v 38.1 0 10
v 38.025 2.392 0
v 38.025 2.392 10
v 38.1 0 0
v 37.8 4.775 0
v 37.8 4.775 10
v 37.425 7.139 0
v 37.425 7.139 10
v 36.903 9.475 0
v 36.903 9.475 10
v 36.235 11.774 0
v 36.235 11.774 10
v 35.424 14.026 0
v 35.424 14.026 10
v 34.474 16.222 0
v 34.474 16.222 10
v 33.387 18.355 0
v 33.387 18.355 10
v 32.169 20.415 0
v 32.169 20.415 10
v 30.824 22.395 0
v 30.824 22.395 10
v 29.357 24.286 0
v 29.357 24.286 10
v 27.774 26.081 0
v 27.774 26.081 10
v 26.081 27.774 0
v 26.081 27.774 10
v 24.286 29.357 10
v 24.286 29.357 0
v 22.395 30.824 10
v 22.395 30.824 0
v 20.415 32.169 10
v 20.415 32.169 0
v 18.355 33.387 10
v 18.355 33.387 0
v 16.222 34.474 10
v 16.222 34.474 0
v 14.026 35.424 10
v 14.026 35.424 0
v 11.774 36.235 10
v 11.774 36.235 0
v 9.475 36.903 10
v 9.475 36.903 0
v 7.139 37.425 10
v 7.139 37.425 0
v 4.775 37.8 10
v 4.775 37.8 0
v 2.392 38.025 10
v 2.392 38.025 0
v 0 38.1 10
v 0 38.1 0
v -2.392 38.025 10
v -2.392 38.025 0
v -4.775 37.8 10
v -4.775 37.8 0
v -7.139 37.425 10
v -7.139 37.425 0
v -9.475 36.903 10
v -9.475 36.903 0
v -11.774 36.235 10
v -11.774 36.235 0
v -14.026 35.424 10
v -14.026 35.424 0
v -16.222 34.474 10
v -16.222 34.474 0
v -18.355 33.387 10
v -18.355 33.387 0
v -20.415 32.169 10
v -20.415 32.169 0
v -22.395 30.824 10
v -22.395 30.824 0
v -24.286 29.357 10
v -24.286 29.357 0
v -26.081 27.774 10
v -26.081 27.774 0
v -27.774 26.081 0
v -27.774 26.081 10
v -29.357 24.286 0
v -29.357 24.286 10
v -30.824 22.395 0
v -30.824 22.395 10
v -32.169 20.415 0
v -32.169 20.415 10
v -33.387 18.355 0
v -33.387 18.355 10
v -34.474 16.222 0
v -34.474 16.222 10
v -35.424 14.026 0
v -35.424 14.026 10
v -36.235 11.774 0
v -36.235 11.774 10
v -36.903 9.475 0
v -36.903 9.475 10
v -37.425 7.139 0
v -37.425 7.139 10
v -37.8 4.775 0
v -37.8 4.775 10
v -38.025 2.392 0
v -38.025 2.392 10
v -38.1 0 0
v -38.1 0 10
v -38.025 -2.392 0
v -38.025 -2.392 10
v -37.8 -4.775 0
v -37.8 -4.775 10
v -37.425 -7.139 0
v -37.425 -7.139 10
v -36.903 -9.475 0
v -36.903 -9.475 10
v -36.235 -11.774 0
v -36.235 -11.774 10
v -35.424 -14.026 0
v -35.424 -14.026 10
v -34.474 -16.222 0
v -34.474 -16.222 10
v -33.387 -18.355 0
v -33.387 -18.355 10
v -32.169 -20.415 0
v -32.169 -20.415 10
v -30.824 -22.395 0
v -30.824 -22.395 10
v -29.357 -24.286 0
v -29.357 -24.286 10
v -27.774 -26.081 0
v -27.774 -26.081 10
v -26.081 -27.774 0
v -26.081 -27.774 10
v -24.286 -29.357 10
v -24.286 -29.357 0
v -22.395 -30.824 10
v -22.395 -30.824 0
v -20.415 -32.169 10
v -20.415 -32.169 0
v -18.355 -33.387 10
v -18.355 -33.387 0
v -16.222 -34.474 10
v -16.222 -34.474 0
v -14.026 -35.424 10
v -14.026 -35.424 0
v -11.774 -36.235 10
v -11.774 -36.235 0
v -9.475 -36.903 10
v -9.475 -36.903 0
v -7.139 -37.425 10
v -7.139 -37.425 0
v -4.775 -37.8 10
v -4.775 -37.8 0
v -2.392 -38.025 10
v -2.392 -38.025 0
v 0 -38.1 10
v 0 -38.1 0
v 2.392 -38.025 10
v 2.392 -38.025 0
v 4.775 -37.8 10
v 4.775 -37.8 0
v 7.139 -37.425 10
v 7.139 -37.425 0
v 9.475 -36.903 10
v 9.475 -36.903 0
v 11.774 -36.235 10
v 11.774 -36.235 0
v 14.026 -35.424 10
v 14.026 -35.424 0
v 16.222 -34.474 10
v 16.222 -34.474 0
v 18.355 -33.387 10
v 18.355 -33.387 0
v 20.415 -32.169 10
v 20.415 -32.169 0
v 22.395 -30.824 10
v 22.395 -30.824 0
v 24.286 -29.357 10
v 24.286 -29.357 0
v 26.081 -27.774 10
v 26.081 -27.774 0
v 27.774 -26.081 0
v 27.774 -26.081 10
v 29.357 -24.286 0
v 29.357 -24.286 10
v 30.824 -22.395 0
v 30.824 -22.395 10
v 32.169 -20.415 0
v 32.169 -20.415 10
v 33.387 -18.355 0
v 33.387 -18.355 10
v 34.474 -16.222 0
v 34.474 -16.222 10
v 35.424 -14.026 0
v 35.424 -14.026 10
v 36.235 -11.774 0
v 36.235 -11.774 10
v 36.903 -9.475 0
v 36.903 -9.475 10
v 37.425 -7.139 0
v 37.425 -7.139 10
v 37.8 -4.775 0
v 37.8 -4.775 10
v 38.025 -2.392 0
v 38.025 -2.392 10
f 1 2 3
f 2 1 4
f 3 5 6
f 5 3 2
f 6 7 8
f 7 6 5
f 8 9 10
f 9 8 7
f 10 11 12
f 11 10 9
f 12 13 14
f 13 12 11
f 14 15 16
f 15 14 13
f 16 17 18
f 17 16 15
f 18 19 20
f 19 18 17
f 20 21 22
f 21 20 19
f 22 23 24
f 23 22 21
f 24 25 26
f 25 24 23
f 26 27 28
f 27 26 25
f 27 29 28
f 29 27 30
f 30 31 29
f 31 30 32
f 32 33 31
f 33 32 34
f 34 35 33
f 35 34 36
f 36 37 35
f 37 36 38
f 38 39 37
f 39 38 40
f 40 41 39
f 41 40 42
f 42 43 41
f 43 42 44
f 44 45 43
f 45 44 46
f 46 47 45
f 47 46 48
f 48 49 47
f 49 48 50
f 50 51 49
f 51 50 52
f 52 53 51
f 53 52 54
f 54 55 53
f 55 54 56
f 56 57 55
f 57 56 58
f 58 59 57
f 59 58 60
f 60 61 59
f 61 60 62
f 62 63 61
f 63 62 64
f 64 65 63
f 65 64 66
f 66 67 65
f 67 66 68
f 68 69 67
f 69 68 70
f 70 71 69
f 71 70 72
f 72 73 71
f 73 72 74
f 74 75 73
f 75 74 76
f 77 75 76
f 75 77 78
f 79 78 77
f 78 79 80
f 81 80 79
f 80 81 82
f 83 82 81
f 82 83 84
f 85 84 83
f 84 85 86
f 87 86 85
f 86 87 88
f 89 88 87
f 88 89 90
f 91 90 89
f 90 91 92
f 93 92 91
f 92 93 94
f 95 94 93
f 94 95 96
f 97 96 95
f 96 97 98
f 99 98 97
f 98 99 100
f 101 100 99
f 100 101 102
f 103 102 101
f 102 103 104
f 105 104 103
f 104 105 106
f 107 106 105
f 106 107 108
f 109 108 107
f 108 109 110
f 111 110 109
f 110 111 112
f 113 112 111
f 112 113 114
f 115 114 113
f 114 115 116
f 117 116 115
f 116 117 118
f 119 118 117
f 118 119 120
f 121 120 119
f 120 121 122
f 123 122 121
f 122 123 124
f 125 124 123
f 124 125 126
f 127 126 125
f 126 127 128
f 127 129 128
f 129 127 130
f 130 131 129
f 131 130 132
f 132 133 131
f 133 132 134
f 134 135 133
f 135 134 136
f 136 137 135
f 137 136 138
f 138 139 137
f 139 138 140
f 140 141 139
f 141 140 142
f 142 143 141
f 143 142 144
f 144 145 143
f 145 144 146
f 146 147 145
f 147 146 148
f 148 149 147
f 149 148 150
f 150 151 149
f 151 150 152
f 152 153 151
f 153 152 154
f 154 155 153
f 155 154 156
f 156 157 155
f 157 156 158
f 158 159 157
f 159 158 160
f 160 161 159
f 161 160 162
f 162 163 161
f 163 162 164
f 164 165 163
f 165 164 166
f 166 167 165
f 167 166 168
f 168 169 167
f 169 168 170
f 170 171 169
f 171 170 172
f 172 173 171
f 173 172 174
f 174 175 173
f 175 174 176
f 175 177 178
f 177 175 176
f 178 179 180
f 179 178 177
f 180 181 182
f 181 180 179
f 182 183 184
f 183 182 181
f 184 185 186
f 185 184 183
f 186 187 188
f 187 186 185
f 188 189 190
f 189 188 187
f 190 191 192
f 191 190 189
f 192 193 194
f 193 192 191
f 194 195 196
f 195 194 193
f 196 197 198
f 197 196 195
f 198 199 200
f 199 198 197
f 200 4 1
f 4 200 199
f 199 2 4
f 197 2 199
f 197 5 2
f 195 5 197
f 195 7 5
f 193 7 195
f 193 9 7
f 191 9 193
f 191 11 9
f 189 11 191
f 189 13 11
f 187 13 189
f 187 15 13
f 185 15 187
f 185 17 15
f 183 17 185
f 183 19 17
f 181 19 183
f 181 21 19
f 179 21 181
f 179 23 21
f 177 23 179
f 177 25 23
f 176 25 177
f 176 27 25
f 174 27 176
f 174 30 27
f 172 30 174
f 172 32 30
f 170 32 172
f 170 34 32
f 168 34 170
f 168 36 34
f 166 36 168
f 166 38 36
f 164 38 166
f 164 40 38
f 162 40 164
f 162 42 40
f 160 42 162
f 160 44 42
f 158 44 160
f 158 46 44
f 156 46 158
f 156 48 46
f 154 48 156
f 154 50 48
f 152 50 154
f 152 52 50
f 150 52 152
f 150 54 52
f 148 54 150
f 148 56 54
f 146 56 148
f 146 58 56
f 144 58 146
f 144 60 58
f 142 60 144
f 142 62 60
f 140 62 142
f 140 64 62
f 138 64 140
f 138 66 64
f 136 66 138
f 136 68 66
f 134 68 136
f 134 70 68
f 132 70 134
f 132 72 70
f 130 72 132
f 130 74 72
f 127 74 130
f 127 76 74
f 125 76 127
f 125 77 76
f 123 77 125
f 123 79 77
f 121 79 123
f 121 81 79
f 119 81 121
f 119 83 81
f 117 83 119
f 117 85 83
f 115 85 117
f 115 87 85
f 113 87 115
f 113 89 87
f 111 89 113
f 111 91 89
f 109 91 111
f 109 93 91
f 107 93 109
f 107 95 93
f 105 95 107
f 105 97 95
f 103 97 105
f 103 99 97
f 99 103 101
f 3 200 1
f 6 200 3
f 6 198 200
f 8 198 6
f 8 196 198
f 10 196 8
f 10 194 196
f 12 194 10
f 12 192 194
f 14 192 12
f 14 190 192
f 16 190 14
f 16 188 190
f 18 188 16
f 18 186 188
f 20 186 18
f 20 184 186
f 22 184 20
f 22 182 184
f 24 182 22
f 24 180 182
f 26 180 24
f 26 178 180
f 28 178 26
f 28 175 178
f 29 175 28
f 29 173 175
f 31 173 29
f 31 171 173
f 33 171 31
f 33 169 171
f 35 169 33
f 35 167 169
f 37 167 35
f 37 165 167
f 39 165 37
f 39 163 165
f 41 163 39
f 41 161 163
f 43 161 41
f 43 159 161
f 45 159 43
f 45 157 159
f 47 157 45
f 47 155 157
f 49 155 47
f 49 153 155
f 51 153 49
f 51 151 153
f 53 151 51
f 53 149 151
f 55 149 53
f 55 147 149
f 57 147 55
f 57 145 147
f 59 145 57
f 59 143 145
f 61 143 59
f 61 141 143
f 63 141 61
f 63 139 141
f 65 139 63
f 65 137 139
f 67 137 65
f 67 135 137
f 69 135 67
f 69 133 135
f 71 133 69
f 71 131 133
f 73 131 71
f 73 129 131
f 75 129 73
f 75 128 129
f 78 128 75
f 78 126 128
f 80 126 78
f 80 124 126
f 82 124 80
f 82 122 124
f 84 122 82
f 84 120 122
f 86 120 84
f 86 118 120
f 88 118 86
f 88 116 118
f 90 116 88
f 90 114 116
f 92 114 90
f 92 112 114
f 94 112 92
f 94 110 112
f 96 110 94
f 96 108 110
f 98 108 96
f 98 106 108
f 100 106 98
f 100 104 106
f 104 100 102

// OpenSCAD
d = 3*2.54*10;
h = 1*10;
$fn = 100;

cylinder(h = h, r = d/2);
